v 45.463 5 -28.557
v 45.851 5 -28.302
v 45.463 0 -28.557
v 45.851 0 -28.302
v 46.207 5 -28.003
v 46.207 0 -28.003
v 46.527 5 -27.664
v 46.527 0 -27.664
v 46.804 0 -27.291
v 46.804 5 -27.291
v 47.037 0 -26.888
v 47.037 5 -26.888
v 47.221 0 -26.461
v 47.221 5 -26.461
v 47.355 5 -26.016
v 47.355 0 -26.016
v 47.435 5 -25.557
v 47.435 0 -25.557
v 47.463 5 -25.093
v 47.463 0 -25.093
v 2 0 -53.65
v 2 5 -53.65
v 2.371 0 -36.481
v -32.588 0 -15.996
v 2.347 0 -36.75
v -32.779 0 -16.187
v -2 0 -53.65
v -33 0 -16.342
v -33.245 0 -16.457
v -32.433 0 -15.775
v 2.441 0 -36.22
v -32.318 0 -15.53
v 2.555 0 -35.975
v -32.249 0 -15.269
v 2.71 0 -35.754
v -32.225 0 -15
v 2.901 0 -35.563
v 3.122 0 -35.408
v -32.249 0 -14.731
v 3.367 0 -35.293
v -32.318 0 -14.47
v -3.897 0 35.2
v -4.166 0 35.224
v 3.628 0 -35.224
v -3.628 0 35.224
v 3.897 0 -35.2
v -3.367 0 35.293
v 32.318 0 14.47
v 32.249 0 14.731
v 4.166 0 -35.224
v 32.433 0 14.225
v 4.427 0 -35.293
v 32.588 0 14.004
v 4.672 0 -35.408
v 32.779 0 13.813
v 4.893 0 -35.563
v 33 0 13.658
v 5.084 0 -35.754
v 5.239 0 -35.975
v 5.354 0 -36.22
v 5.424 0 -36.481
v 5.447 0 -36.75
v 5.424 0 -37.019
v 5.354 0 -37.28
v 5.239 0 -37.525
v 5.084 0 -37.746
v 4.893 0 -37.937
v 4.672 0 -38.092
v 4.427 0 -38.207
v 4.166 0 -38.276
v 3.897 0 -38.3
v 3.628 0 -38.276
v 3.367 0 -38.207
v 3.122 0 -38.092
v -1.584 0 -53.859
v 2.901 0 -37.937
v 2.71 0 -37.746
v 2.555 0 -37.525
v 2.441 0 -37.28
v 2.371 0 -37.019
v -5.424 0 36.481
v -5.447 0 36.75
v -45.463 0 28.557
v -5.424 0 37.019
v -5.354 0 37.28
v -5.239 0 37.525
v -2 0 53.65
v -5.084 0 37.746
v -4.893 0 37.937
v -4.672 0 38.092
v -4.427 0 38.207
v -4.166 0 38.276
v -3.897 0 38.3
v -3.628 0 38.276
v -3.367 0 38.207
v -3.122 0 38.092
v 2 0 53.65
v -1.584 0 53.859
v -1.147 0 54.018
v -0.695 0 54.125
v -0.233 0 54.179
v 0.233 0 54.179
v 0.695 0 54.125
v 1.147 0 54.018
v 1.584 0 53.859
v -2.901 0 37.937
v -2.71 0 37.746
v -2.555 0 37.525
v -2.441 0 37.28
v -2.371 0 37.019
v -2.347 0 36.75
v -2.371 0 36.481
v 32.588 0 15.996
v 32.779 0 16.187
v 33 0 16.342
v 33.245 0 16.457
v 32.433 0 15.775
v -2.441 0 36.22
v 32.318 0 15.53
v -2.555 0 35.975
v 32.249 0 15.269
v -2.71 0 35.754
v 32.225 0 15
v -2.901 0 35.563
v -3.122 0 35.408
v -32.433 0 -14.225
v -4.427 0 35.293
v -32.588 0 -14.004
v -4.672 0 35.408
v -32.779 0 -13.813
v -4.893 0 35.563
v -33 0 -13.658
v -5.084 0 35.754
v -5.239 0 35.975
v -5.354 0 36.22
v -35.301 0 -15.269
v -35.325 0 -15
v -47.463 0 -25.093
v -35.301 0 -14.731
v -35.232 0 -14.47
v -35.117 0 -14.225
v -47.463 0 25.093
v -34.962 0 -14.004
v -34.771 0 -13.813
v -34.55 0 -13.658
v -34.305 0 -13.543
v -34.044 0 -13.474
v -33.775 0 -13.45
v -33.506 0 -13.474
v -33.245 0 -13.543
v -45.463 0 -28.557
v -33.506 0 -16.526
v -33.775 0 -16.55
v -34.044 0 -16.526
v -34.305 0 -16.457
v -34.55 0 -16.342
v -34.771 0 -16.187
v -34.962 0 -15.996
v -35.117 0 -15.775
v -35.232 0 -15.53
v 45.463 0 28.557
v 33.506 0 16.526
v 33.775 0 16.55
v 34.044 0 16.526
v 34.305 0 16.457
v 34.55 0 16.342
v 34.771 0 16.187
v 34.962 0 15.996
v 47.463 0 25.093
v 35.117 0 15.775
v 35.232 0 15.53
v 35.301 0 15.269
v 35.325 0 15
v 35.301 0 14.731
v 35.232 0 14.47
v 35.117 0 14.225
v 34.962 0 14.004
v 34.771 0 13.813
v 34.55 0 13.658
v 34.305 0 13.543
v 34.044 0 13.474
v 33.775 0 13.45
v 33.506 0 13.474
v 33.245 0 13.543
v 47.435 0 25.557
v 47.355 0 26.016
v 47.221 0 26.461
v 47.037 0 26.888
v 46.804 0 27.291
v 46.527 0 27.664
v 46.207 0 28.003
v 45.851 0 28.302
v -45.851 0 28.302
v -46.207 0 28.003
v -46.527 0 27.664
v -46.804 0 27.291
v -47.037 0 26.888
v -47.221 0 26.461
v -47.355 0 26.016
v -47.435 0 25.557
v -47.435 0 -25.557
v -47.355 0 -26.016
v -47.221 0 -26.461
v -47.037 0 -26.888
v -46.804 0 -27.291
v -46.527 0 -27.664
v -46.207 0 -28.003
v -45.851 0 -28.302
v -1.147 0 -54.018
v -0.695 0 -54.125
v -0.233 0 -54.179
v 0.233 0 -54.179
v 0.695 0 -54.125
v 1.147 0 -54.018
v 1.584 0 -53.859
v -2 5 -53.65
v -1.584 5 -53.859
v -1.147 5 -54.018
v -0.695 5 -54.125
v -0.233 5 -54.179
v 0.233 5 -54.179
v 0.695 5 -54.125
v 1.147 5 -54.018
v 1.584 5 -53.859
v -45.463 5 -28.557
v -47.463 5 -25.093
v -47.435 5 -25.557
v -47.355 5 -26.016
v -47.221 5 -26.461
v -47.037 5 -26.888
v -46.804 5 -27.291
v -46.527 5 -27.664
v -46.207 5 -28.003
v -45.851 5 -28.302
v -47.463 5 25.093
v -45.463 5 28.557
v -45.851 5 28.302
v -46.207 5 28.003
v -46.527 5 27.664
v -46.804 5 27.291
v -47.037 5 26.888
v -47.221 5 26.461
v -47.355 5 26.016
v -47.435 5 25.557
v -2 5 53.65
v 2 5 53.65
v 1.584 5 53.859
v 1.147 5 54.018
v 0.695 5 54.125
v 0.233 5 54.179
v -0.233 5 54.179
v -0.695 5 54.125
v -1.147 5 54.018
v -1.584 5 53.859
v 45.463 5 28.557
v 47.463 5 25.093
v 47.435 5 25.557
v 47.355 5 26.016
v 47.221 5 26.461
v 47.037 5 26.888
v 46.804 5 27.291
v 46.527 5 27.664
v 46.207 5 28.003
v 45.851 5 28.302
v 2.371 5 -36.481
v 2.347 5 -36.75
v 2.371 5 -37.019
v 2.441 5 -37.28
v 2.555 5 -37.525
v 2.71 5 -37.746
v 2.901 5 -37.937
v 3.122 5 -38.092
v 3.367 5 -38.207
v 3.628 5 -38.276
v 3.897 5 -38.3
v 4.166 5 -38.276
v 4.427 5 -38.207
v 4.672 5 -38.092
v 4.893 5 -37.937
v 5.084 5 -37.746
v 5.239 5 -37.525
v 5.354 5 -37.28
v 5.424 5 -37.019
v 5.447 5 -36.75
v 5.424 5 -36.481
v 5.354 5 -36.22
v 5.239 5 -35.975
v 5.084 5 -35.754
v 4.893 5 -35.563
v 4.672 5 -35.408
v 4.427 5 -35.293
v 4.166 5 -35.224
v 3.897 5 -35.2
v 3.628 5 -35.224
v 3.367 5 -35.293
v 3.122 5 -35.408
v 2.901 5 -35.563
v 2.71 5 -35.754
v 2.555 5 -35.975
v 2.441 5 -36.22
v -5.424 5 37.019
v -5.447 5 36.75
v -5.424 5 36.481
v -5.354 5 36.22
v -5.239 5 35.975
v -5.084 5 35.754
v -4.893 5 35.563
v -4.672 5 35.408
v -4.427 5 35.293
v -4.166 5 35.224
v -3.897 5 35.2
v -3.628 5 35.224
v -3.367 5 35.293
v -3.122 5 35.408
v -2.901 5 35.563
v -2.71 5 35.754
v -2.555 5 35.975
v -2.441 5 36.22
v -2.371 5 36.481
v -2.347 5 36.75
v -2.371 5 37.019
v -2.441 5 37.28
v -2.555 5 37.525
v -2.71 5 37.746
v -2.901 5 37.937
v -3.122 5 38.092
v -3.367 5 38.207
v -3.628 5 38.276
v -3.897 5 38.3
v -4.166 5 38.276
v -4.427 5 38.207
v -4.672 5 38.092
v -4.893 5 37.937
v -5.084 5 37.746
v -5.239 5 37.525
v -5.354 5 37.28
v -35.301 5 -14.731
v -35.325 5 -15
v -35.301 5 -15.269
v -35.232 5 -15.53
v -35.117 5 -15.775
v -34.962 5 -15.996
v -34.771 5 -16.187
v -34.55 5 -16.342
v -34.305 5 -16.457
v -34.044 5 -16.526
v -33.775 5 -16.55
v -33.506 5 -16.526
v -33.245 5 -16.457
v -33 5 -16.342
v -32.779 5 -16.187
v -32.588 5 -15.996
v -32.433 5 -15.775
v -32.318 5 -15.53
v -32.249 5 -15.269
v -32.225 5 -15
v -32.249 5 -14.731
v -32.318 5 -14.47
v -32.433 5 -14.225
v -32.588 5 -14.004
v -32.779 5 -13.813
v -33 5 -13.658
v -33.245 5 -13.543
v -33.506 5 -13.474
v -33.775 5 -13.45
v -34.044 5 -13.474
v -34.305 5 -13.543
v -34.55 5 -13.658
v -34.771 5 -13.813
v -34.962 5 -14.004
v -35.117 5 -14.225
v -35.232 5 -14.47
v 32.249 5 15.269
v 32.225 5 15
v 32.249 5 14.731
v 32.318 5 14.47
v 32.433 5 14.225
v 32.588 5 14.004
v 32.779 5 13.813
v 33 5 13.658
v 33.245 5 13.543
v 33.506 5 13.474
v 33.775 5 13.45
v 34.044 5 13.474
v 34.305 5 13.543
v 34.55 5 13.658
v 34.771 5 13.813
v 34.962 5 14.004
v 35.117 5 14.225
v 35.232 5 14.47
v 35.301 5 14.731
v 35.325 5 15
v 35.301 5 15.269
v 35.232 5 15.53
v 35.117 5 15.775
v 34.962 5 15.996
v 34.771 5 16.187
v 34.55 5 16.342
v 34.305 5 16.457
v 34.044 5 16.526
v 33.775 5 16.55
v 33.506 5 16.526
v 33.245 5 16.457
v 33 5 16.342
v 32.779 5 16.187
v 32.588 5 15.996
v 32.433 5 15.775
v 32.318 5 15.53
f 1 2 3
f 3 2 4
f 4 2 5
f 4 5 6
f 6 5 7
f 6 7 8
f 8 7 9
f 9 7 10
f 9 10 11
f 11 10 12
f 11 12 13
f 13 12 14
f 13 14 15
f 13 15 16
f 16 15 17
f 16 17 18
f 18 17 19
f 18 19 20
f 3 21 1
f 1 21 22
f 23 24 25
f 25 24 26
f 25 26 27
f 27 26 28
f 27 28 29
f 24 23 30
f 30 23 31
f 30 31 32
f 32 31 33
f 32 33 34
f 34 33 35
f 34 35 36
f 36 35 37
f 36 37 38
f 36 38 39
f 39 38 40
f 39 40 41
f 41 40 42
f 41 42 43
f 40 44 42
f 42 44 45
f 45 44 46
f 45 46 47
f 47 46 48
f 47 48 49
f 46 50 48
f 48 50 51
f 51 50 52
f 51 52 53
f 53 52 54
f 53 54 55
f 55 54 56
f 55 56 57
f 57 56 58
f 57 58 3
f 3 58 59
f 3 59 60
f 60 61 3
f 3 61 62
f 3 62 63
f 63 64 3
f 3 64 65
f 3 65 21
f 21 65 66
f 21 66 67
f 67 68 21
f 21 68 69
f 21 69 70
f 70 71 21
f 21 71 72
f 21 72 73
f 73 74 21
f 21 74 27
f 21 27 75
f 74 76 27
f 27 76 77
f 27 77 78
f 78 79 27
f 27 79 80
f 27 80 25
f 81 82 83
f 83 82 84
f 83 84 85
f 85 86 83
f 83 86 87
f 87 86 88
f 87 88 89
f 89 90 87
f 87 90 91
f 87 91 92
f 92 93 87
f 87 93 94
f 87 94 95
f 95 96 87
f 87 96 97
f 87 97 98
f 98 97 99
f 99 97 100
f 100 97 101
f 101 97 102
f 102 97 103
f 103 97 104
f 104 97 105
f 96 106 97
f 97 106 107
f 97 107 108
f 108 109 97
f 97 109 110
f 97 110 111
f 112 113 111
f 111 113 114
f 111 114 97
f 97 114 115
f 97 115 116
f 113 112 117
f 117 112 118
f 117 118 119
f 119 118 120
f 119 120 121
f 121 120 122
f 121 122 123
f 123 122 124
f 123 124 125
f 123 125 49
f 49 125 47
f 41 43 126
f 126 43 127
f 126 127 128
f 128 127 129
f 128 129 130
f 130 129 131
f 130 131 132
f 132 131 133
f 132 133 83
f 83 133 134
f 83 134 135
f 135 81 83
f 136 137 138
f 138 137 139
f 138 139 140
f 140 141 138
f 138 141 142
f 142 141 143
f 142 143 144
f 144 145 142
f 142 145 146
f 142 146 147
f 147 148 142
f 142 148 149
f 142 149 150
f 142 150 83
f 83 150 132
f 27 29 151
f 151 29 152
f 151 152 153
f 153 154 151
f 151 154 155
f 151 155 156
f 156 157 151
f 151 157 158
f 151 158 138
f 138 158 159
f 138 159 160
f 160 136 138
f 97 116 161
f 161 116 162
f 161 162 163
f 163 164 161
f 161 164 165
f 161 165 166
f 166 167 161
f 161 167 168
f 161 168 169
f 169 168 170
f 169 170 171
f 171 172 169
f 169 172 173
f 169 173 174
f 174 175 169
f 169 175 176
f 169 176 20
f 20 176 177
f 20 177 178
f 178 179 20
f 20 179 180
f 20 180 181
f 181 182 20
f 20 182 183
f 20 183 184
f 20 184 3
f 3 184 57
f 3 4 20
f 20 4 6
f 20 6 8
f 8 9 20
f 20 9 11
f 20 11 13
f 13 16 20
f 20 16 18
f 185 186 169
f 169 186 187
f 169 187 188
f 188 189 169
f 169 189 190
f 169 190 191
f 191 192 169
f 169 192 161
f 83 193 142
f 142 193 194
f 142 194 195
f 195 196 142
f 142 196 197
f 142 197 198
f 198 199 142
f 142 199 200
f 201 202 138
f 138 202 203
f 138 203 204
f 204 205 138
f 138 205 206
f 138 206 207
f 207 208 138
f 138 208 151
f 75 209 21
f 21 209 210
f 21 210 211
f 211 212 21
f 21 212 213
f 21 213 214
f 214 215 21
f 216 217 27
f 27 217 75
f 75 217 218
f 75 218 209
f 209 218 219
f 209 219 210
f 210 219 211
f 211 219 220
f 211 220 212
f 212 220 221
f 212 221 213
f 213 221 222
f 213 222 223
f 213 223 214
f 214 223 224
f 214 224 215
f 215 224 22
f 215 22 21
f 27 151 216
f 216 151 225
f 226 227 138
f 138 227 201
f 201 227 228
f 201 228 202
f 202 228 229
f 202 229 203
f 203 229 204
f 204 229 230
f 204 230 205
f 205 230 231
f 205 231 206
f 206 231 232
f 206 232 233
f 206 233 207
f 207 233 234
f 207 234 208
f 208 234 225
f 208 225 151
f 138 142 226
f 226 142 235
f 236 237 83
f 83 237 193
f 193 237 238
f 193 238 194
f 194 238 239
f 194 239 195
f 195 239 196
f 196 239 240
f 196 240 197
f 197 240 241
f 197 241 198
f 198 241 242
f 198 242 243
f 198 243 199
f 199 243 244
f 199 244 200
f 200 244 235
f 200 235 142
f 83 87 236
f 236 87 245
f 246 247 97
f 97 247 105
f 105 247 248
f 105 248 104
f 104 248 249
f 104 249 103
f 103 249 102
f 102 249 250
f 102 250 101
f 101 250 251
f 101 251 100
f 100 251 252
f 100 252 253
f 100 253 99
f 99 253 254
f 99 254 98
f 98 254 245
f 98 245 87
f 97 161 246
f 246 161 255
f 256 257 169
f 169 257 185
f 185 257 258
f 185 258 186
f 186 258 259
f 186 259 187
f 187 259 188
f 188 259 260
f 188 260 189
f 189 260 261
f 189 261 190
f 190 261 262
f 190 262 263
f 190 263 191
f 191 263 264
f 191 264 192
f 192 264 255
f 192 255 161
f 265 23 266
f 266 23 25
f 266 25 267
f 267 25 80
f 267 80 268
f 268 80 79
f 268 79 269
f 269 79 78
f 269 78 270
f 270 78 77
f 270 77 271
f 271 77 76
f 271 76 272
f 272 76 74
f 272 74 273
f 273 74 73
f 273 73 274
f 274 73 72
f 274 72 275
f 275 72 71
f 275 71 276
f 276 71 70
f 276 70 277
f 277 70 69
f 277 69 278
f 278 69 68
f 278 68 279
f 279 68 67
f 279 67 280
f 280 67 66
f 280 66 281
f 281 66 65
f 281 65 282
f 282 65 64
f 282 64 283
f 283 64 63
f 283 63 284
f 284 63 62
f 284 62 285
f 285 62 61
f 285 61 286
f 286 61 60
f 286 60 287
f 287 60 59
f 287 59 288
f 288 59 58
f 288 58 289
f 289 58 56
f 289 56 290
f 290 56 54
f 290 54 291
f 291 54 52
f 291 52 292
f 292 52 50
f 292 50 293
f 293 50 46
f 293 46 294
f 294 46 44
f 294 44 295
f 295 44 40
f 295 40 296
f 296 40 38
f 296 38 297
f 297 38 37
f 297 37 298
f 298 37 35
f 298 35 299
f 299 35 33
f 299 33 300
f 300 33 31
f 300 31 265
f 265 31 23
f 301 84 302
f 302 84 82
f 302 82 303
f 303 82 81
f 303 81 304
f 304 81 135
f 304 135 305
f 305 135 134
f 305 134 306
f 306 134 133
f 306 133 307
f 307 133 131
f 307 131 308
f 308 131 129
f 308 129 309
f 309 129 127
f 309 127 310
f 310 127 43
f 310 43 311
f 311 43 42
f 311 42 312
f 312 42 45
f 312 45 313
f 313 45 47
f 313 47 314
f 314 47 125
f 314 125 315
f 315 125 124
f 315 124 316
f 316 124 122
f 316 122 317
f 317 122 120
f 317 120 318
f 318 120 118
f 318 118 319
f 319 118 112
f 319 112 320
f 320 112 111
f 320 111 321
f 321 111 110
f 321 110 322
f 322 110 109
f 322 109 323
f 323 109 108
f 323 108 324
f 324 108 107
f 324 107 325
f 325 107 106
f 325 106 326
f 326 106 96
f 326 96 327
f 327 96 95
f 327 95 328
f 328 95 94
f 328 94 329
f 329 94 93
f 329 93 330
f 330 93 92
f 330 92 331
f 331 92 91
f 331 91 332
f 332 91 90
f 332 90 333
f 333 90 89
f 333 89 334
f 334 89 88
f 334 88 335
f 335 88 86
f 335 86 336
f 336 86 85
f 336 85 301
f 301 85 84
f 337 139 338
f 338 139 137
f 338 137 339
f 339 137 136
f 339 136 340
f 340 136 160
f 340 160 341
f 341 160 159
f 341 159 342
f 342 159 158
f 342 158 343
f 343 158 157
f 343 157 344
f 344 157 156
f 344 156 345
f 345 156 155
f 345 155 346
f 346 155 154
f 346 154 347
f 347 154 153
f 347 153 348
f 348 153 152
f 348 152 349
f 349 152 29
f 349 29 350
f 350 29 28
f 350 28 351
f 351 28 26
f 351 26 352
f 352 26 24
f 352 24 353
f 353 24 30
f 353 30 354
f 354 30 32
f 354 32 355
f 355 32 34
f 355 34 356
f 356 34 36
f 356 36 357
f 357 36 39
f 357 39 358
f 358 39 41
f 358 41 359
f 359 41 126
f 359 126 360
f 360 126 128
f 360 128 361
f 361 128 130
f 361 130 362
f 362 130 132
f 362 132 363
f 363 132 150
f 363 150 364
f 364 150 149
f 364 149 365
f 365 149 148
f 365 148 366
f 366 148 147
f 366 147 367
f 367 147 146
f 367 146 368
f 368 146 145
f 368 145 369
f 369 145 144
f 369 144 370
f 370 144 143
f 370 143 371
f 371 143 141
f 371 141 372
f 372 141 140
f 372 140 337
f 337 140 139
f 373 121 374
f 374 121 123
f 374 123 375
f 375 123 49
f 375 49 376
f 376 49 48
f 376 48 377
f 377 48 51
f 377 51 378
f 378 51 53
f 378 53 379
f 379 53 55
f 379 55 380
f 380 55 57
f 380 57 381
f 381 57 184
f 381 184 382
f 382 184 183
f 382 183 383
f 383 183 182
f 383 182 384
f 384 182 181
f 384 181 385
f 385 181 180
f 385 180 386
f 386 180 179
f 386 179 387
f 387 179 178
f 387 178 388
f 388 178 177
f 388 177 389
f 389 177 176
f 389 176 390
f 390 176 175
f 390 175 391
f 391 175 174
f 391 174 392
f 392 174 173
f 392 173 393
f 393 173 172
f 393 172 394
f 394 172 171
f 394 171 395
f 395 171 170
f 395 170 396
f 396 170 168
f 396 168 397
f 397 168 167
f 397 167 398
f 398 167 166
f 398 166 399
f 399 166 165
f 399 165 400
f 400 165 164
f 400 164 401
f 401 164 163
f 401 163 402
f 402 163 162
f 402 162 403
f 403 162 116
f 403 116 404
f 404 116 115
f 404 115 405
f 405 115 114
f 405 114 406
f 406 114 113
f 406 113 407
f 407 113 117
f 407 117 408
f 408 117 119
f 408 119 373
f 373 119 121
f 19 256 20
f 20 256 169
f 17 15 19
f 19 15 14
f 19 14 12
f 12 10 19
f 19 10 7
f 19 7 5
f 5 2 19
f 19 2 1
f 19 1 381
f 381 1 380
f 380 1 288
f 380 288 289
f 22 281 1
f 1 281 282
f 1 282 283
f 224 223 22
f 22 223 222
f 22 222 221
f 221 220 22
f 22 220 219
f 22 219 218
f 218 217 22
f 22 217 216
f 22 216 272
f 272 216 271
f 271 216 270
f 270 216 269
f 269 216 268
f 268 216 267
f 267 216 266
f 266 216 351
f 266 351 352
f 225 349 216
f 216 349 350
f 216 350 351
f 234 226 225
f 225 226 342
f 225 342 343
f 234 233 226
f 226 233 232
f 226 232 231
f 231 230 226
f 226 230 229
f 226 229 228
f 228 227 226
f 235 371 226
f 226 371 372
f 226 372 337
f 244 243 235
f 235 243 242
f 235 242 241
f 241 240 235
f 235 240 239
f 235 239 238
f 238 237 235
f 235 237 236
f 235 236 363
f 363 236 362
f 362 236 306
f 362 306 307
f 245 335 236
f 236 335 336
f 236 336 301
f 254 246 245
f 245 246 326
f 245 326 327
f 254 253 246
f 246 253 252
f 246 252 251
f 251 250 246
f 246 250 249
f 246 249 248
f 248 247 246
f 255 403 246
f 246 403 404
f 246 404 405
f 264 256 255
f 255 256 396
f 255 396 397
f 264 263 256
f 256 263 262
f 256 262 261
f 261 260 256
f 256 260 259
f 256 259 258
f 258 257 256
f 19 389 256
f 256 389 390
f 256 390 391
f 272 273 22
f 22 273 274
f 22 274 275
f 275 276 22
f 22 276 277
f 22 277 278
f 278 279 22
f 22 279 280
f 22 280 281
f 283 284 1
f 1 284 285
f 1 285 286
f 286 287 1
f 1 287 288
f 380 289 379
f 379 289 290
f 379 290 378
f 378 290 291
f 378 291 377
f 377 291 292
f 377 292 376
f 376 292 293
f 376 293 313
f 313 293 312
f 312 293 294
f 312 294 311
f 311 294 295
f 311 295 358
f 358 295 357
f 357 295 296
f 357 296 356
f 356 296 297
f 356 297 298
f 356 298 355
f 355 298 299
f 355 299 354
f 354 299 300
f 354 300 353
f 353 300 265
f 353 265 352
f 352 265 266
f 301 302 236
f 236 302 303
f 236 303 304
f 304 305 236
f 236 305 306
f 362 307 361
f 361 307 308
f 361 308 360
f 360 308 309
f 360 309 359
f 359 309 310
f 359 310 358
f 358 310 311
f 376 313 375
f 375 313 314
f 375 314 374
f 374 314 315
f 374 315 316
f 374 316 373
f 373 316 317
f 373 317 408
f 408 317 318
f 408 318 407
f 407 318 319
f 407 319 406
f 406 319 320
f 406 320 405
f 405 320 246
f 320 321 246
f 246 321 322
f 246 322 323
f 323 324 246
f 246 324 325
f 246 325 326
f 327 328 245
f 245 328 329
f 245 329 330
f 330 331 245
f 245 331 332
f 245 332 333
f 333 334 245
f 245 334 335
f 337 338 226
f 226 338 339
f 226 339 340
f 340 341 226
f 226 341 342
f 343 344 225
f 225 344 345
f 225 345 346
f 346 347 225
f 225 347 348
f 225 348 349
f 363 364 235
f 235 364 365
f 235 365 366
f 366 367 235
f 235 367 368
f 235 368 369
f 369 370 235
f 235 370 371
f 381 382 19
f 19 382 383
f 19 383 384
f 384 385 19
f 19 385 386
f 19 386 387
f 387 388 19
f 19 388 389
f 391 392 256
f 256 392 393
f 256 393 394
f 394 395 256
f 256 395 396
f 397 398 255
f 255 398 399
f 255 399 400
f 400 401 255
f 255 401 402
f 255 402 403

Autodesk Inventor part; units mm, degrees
ref_plane "YZ Plane" through (0, 0, 0) normal (1, 0, 0) x (0, 1, 0)
ref_plane "XZ Plane" through (0, 0, 0) normal (0, 1, 0) x (-1, 0, 0)
ref_plane "XY Plane" through (0, 0, 0) normal (0, 0, 1) x (1, 0, 0)
sketch "Sketch1" plane through (0, 0, 0) normal (0, 1, 0) x (-1, 0, 0)
  line L0 (-47.5136, -27.432) -> (-47.5136, 27.432)
  line L1 (-47.5136, 27.432) -> (0, 54.864)
  line L2 (0, 54.864) -> (47.5136, 27.432)
  line L3 (47.5136, 27.432) -> (47.5136, -27.432)
  line L4 (47.5136, -27.432) -> (0, -54.864)
  line L5 (0, -54.864) -> (-47.5136, -27.432)
  line L6 (0, 54.864) -> (47.5136, 27.432)
  line L7 (47.5136, 27.432) -> (47.5136, -27.432)
  line L8 (47.5136, -27.432) -> (0, -54.864)
  line L9 (0, -54.864) -> (-47.5136, -27.432)
  line L10 (-47.5136, -27.432) -> (-47.5136, 27.432)
  line L11 (-47.5136, 27.432) -> (0, 54.864)
  line L12 (0, 54.805) -> (-47.4625, 27.4025)
  line L13 (-47.4625, 27.4025) -> (-47.4625, -27.4025)
  line L14 (-47.4625, -27.4025) -> (0, -54.805)
  line L15 (-47.4625, 27.4025) -> (0, 54.805)
  line L16 (0, 54.805) -> (47.4625, 27.4025)
  line L17 (47.4625, 27.4025) -> (47.4625, -27.4025)
  line L18 (47.4625, -27.4025) -> (0, -54.805)
  line L19 (0, -54.805) -> (-47.4625, -27.4025)
  line L20 (-47.4625, -27.4025) -> (-47.4625, 27.4025)
  circle A0 centre (-33.775, 15) radius 1.55
  circle A1 centre (-3.8971, -36.75) radius 1.55
  circle A2 centre (33.775, -15) radius 1.55
  circle A3 centre (3.8971, 36.75) radius 1.55
  line L21 (-33.775, 19.5) -> (0, 39) construction
  line L22 (0, 39) -> (33.775, 19.5) construction
  line L23 (33.775, 19.5) -> (33.775, -19.5) construction
  line L24 (33.775, -19.5) -> (0, -39) construction
  line L25 (0, -39) -> (-33.775, -19.5) construction
  line L26 (-33.775, -19.5) -> (-33.775, 19.5) construction
  line L27 (-44.5136, -25.6999) -> (-44.5136, 25.6999)
  line L28 (-44.5136, 25.6999) -> (0, 51.3999)
  line L29 (0, 51.3999) -> (44.5136, 25.6999)
  line L30 (44.5136, 25.6999) -> (44.5136, -25.6999)
  line L31 (0, -51.3999) -> (-44.5136, -25.6999)
  line L32 (47.5136, -27.432) -> (47.5136, 27.432)
  line L33 (47.5136, 27.432) -> (0, 54.864)
  line L34 (0, 54.864) -> (-47.5136, 27.432)
  line L35 (-47.5136, 27.432) -> (-47.5136, -27.432)
  line L36 (-47.5136, -27.432) -> (0, -54.864)
  line L37 (0, -54.864) -> (47.5136, -27.432)
  line L38 (44.5136, 25.6999) -> (44.5136, -25.6999)
  line L39 (29.2636, 11) -> (29.2636, -11)
  line L40 (44.5136, -11) -> (44.5136, 11)
  line L41 (44.5136, 0) -> (46.3422, 0) construction
  line L42 (0, -33.7907) -> (-29.2636, -16.8954) construction
  line L43 (-29.2636, -16.8954) -> (-29.2636, 16.8954) construction
  line L44 (-29.2636, 16.8954) -> (-16.4566, 24.2895) construction
  line L45 (0, 33.7907) -> (29.2636, 16.8954) construction
  line L46 (29.2636, 16.8954) -> (29.2636, -16.8954) construction
  line L47 (29.2636, -16.8954) -> (16.4566, -24.2895) construction
  line L48 (0, -51.3999) -> (-44.5136, -25.6999) construction
  line L49 (20.432, -39.6035) -> (0, -51.3999) construction
  line L50 (44.5136, -25.6999) -> (24.0816, -37.4964) construction
  line L51 (44.5136, 25.6999) -> (44.5136, -25.6999) construction
  line L52 (0, 51.3999) -> (44.5136, 25.6999) construction
  line L53 (-20.432, 39.6035) -> (0, 51.3999) construction
  line L54 (-44.5136, 25.6999) -> (-24.0816, 37.4964) construction
  line L55 (-44.5136, -25.6999) -> (-44.5136, 25.6999) construction
  line L56 (29.2636, 16.8954) -> (0, 33.7907)
  line L57 (31.7831, 33.0499) -> (12.7305, 44.0499)
  line L58 (22.2568, 38.5499) -> (22.6365, 39.2076)
  line L59 (0, 51.3999) -> (44.5136, 25.6999)
  line L60 (0, 33.7907) -> (29.2636, 16.8954)
  line L61 (0, 0) -> (0, -5.712) construction
  line L62 (0, 0) -> (4.8403, -2.7945) construction
  line L63 (29.2636, 16.8954) -> (29.2636, -16.8954) construction
  line L64 (-44.5136, -11) -> (-44.5136, 11)
  line L65 (-22.2568, -38.5499) -> (-22.6365, -39.2076)
  line L66 (-12.7305, -44.0499) -> (-31.7831, -33.0499)
  line L67 (-24.1581, -19.843) -> (-5.1055, -30.843)
  line L68 (0, -54.864) -> (47.5136, -27.432) construction
  line L69 (23.7568, -41.148) -> (25.1641, -43.5855) construction
  line L70 (29.2636, -16.8954) -> (0, -33.7907)
  line L71 (0, 0) -> (6.6102, 3.8164) construction
  line L72 (0, 51.3999) -> (-44.5136, 25.6999)
  line L73 (0, 33.7907) -> (-29.2636, 16.8954) construction
  line L74 (-24.1581, 19.843) -> (-31.7831, 33.0499)
  line L75 (-31.7831, 33.0499) -> (-12.7305, 44.0499)
  line L76 (5.1055, -30.843) -> (24.1581, -19.843)
  line L77 (0, -33.7907) -> (29.2636, -16.8954)
  line L78 (41.3094, 27.5499) -> (29.4425, 34.4013)
  line L79 (31.7831, 33.0499) -> (12.7305, 44.0499)
  line L80 (-12.7305, 44.0499) -> (-31.7831, 33.0499)
  line L81 (-31.7831, 33.0499) -> (-24.1581, 19.843)
  line L82 (-5.1055, -30.843) -> (-24.1581, -19.843)
  line L83 (0, -33.7907) -> (-29.2636, -16.8954)
  line L84 (-31.7831, -33.0499) -> (-12.7305, -44.0499)
  line L85 (12.807, -26.3966) -> (0, -33.7907)
  line L86 (-12.807, 26.3966) -> (0, 33.7907)
  point P0 (-44.5136, 0)
  point P1 (-44.5136, 0)
  dimension "d0" = 54.864
  dimension "d1" = 0
  dimension "d3" = 39
  dimension "d6" = 4.5
  dimension "d7" = 4.5
  dimension "d11" = 4.5
  dimension "d15" = 4.5
extrude "Extrusion2" add sketch "Sketch1" along normal blind 5 contours L16 L17 L18 L14 L13 L12
fillet "Fillet1" radius 4 6 edges at (47.4625, 2.5, 27.4025) (0, 2.5, 54.805) (-47.4625, 2.5, 27.4025) (-47.4625, 2.5, -27.4025) (0, 2.5, -54.805) (47.4625, 2.5, -27.4025)
equation "\"d6\" = d4"
equation "\"d7\" = d5"
equation "\"d11\" = d4"
equation "\"d15\" = d9"
equation "\"d5\" = d4"
equation "\"d9\" = d4"
equation "\"d4\" = 4.5"
properties part number "tapa"
